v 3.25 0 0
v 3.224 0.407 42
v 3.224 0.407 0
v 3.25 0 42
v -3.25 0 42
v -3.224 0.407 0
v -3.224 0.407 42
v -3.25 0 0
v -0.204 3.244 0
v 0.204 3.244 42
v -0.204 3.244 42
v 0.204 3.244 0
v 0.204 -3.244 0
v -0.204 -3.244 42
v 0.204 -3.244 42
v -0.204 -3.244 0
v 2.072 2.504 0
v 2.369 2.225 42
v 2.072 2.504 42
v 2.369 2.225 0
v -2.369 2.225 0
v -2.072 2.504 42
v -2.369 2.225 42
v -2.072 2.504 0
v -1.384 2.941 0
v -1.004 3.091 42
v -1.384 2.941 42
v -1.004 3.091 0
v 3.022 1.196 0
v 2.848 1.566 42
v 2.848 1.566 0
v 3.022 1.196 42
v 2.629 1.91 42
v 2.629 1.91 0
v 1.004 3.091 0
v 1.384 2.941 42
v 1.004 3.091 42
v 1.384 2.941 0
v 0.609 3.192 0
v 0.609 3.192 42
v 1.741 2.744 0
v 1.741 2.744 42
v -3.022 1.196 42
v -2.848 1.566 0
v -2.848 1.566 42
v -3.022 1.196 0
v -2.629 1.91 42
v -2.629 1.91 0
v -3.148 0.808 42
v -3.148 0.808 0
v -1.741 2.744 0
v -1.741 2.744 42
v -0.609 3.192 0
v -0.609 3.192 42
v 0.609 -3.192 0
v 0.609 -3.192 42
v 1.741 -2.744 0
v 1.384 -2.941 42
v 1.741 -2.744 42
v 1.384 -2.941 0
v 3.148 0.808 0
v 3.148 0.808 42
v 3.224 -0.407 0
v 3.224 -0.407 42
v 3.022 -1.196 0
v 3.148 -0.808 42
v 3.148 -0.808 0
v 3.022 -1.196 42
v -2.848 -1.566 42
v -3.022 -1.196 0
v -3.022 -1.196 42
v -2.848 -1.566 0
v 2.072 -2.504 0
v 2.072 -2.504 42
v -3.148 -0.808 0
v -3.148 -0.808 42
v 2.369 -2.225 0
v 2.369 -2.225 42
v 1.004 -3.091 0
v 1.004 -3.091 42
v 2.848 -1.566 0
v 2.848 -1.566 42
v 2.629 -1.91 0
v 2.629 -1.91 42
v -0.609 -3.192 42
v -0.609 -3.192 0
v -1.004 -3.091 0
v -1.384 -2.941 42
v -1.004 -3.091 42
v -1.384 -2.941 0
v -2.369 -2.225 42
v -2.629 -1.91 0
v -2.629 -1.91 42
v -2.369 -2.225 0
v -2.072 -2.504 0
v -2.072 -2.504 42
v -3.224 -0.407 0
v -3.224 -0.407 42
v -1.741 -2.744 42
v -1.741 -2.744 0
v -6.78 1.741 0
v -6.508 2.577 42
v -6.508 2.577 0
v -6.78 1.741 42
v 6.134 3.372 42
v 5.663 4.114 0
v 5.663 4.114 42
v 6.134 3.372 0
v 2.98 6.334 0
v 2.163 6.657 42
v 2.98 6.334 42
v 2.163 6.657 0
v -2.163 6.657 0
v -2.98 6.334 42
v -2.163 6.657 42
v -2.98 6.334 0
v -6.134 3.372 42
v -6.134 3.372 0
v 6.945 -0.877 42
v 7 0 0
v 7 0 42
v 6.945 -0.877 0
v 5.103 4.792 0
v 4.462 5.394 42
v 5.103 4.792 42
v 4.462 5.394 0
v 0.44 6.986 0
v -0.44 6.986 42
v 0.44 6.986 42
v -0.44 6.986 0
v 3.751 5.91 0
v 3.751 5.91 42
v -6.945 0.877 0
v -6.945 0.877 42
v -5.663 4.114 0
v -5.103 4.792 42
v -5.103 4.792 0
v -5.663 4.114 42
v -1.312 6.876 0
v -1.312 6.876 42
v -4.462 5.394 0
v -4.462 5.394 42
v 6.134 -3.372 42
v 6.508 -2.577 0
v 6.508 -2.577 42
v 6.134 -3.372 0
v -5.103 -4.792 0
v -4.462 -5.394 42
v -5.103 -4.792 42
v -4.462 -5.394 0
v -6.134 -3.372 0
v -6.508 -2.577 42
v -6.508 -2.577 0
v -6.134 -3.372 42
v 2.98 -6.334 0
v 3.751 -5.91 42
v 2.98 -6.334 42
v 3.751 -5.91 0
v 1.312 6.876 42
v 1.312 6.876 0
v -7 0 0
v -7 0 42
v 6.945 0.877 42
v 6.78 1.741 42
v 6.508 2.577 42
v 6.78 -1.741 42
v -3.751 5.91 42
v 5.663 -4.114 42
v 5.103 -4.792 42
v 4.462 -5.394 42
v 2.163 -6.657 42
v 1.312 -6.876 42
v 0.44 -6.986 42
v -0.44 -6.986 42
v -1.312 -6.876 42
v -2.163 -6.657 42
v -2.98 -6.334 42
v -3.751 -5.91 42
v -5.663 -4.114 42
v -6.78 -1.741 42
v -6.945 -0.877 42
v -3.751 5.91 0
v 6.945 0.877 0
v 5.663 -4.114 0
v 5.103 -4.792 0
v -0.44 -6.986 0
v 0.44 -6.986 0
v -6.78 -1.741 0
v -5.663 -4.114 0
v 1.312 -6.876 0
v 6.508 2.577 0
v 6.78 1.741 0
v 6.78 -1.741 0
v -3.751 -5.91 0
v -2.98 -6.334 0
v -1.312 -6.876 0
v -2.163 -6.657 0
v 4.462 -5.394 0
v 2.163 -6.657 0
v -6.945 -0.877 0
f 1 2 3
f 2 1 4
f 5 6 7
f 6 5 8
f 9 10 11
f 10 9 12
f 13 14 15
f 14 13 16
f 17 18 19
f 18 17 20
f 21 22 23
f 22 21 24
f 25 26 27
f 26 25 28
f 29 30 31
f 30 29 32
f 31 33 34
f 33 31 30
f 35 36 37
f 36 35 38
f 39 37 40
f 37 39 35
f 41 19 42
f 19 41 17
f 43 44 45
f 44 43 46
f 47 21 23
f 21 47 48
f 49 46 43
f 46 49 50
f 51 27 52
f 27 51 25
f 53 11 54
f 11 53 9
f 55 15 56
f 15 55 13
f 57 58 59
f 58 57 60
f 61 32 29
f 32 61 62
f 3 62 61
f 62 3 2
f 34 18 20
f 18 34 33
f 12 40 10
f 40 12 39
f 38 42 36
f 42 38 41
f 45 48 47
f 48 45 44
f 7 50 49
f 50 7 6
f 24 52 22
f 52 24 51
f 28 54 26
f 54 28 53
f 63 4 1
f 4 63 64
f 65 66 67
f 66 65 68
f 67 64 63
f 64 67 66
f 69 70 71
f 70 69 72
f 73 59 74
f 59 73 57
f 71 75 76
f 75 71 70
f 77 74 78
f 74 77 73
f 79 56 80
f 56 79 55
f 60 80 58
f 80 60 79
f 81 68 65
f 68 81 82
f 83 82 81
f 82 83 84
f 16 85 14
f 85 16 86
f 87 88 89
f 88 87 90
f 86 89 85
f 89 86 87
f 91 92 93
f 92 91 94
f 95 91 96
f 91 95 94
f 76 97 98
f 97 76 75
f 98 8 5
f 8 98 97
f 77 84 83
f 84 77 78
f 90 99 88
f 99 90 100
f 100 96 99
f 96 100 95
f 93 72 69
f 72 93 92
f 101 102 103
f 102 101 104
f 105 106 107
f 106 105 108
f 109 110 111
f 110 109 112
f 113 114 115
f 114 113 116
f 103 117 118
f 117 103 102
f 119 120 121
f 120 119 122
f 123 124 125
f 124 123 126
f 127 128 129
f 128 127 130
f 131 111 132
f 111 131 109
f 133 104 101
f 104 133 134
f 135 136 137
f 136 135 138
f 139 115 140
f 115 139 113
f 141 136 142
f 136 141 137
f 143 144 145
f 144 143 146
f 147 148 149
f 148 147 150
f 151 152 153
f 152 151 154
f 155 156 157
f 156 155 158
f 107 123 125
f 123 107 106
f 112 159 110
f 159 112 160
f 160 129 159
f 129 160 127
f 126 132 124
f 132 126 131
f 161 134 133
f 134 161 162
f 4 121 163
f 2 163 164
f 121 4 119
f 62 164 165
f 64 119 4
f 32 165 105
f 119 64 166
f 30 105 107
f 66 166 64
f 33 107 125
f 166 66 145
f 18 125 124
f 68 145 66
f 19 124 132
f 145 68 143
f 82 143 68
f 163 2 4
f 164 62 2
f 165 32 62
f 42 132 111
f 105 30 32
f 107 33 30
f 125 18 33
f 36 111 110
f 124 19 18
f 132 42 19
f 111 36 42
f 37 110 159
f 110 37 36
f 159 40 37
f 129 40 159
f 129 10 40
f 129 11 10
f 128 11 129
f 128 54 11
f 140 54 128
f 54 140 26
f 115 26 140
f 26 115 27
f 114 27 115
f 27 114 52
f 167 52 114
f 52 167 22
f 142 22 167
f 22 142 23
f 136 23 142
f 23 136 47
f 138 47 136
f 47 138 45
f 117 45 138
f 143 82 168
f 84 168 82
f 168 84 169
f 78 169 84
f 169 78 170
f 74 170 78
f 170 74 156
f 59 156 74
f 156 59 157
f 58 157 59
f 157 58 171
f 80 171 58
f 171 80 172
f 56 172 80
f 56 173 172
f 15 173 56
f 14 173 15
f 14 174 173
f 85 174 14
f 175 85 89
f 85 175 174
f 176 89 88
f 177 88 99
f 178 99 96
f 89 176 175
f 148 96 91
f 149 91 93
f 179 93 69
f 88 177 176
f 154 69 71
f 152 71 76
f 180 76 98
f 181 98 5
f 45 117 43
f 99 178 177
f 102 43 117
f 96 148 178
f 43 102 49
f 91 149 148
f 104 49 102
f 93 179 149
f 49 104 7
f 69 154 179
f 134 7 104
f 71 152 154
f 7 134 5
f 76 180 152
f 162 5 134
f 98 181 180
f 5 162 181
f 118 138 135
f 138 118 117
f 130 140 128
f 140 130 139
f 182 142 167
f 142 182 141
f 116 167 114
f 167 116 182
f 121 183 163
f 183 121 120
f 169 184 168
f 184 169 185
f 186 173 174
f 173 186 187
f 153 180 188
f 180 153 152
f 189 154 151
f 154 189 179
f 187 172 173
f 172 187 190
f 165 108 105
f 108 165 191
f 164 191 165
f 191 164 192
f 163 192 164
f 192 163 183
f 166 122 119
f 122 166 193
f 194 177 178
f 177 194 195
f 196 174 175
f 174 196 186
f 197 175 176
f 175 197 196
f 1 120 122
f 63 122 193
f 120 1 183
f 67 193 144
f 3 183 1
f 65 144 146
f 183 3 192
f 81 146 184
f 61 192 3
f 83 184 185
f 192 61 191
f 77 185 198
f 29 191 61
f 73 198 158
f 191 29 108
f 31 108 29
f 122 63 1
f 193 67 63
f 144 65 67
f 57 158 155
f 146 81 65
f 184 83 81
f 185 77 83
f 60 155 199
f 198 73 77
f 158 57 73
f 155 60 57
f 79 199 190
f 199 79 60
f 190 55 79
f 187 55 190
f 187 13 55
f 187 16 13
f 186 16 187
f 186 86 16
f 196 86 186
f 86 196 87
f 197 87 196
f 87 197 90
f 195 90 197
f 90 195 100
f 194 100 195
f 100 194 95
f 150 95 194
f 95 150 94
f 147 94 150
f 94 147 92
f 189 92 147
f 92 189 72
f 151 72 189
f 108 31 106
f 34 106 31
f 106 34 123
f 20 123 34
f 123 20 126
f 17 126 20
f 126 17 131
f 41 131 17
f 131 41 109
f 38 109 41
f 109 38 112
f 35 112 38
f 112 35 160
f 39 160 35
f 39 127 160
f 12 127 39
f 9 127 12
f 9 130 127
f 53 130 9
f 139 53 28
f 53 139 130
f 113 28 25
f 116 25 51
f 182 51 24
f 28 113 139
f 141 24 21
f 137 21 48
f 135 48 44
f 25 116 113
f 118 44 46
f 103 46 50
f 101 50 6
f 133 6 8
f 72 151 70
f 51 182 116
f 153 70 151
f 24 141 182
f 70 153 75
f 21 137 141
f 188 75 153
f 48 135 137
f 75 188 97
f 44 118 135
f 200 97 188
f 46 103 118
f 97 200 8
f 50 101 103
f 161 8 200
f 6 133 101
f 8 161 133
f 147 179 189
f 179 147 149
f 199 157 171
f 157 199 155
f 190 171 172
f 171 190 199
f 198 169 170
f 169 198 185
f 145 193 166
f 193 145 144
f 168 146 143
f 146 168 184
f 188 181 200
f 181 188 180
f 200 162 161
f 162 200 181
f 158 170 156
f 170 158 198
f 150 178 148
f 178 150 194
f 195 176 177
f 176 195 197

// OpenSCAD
$fn = 50;


difference() {
	union() {
		cylinder(h = 42, r = 7.0000000000);
	}
	union() {
		translate(v = [0, 0, -100]) {
			cylinder(h = 200, r = 3.2500000000);
		}
	}
}
